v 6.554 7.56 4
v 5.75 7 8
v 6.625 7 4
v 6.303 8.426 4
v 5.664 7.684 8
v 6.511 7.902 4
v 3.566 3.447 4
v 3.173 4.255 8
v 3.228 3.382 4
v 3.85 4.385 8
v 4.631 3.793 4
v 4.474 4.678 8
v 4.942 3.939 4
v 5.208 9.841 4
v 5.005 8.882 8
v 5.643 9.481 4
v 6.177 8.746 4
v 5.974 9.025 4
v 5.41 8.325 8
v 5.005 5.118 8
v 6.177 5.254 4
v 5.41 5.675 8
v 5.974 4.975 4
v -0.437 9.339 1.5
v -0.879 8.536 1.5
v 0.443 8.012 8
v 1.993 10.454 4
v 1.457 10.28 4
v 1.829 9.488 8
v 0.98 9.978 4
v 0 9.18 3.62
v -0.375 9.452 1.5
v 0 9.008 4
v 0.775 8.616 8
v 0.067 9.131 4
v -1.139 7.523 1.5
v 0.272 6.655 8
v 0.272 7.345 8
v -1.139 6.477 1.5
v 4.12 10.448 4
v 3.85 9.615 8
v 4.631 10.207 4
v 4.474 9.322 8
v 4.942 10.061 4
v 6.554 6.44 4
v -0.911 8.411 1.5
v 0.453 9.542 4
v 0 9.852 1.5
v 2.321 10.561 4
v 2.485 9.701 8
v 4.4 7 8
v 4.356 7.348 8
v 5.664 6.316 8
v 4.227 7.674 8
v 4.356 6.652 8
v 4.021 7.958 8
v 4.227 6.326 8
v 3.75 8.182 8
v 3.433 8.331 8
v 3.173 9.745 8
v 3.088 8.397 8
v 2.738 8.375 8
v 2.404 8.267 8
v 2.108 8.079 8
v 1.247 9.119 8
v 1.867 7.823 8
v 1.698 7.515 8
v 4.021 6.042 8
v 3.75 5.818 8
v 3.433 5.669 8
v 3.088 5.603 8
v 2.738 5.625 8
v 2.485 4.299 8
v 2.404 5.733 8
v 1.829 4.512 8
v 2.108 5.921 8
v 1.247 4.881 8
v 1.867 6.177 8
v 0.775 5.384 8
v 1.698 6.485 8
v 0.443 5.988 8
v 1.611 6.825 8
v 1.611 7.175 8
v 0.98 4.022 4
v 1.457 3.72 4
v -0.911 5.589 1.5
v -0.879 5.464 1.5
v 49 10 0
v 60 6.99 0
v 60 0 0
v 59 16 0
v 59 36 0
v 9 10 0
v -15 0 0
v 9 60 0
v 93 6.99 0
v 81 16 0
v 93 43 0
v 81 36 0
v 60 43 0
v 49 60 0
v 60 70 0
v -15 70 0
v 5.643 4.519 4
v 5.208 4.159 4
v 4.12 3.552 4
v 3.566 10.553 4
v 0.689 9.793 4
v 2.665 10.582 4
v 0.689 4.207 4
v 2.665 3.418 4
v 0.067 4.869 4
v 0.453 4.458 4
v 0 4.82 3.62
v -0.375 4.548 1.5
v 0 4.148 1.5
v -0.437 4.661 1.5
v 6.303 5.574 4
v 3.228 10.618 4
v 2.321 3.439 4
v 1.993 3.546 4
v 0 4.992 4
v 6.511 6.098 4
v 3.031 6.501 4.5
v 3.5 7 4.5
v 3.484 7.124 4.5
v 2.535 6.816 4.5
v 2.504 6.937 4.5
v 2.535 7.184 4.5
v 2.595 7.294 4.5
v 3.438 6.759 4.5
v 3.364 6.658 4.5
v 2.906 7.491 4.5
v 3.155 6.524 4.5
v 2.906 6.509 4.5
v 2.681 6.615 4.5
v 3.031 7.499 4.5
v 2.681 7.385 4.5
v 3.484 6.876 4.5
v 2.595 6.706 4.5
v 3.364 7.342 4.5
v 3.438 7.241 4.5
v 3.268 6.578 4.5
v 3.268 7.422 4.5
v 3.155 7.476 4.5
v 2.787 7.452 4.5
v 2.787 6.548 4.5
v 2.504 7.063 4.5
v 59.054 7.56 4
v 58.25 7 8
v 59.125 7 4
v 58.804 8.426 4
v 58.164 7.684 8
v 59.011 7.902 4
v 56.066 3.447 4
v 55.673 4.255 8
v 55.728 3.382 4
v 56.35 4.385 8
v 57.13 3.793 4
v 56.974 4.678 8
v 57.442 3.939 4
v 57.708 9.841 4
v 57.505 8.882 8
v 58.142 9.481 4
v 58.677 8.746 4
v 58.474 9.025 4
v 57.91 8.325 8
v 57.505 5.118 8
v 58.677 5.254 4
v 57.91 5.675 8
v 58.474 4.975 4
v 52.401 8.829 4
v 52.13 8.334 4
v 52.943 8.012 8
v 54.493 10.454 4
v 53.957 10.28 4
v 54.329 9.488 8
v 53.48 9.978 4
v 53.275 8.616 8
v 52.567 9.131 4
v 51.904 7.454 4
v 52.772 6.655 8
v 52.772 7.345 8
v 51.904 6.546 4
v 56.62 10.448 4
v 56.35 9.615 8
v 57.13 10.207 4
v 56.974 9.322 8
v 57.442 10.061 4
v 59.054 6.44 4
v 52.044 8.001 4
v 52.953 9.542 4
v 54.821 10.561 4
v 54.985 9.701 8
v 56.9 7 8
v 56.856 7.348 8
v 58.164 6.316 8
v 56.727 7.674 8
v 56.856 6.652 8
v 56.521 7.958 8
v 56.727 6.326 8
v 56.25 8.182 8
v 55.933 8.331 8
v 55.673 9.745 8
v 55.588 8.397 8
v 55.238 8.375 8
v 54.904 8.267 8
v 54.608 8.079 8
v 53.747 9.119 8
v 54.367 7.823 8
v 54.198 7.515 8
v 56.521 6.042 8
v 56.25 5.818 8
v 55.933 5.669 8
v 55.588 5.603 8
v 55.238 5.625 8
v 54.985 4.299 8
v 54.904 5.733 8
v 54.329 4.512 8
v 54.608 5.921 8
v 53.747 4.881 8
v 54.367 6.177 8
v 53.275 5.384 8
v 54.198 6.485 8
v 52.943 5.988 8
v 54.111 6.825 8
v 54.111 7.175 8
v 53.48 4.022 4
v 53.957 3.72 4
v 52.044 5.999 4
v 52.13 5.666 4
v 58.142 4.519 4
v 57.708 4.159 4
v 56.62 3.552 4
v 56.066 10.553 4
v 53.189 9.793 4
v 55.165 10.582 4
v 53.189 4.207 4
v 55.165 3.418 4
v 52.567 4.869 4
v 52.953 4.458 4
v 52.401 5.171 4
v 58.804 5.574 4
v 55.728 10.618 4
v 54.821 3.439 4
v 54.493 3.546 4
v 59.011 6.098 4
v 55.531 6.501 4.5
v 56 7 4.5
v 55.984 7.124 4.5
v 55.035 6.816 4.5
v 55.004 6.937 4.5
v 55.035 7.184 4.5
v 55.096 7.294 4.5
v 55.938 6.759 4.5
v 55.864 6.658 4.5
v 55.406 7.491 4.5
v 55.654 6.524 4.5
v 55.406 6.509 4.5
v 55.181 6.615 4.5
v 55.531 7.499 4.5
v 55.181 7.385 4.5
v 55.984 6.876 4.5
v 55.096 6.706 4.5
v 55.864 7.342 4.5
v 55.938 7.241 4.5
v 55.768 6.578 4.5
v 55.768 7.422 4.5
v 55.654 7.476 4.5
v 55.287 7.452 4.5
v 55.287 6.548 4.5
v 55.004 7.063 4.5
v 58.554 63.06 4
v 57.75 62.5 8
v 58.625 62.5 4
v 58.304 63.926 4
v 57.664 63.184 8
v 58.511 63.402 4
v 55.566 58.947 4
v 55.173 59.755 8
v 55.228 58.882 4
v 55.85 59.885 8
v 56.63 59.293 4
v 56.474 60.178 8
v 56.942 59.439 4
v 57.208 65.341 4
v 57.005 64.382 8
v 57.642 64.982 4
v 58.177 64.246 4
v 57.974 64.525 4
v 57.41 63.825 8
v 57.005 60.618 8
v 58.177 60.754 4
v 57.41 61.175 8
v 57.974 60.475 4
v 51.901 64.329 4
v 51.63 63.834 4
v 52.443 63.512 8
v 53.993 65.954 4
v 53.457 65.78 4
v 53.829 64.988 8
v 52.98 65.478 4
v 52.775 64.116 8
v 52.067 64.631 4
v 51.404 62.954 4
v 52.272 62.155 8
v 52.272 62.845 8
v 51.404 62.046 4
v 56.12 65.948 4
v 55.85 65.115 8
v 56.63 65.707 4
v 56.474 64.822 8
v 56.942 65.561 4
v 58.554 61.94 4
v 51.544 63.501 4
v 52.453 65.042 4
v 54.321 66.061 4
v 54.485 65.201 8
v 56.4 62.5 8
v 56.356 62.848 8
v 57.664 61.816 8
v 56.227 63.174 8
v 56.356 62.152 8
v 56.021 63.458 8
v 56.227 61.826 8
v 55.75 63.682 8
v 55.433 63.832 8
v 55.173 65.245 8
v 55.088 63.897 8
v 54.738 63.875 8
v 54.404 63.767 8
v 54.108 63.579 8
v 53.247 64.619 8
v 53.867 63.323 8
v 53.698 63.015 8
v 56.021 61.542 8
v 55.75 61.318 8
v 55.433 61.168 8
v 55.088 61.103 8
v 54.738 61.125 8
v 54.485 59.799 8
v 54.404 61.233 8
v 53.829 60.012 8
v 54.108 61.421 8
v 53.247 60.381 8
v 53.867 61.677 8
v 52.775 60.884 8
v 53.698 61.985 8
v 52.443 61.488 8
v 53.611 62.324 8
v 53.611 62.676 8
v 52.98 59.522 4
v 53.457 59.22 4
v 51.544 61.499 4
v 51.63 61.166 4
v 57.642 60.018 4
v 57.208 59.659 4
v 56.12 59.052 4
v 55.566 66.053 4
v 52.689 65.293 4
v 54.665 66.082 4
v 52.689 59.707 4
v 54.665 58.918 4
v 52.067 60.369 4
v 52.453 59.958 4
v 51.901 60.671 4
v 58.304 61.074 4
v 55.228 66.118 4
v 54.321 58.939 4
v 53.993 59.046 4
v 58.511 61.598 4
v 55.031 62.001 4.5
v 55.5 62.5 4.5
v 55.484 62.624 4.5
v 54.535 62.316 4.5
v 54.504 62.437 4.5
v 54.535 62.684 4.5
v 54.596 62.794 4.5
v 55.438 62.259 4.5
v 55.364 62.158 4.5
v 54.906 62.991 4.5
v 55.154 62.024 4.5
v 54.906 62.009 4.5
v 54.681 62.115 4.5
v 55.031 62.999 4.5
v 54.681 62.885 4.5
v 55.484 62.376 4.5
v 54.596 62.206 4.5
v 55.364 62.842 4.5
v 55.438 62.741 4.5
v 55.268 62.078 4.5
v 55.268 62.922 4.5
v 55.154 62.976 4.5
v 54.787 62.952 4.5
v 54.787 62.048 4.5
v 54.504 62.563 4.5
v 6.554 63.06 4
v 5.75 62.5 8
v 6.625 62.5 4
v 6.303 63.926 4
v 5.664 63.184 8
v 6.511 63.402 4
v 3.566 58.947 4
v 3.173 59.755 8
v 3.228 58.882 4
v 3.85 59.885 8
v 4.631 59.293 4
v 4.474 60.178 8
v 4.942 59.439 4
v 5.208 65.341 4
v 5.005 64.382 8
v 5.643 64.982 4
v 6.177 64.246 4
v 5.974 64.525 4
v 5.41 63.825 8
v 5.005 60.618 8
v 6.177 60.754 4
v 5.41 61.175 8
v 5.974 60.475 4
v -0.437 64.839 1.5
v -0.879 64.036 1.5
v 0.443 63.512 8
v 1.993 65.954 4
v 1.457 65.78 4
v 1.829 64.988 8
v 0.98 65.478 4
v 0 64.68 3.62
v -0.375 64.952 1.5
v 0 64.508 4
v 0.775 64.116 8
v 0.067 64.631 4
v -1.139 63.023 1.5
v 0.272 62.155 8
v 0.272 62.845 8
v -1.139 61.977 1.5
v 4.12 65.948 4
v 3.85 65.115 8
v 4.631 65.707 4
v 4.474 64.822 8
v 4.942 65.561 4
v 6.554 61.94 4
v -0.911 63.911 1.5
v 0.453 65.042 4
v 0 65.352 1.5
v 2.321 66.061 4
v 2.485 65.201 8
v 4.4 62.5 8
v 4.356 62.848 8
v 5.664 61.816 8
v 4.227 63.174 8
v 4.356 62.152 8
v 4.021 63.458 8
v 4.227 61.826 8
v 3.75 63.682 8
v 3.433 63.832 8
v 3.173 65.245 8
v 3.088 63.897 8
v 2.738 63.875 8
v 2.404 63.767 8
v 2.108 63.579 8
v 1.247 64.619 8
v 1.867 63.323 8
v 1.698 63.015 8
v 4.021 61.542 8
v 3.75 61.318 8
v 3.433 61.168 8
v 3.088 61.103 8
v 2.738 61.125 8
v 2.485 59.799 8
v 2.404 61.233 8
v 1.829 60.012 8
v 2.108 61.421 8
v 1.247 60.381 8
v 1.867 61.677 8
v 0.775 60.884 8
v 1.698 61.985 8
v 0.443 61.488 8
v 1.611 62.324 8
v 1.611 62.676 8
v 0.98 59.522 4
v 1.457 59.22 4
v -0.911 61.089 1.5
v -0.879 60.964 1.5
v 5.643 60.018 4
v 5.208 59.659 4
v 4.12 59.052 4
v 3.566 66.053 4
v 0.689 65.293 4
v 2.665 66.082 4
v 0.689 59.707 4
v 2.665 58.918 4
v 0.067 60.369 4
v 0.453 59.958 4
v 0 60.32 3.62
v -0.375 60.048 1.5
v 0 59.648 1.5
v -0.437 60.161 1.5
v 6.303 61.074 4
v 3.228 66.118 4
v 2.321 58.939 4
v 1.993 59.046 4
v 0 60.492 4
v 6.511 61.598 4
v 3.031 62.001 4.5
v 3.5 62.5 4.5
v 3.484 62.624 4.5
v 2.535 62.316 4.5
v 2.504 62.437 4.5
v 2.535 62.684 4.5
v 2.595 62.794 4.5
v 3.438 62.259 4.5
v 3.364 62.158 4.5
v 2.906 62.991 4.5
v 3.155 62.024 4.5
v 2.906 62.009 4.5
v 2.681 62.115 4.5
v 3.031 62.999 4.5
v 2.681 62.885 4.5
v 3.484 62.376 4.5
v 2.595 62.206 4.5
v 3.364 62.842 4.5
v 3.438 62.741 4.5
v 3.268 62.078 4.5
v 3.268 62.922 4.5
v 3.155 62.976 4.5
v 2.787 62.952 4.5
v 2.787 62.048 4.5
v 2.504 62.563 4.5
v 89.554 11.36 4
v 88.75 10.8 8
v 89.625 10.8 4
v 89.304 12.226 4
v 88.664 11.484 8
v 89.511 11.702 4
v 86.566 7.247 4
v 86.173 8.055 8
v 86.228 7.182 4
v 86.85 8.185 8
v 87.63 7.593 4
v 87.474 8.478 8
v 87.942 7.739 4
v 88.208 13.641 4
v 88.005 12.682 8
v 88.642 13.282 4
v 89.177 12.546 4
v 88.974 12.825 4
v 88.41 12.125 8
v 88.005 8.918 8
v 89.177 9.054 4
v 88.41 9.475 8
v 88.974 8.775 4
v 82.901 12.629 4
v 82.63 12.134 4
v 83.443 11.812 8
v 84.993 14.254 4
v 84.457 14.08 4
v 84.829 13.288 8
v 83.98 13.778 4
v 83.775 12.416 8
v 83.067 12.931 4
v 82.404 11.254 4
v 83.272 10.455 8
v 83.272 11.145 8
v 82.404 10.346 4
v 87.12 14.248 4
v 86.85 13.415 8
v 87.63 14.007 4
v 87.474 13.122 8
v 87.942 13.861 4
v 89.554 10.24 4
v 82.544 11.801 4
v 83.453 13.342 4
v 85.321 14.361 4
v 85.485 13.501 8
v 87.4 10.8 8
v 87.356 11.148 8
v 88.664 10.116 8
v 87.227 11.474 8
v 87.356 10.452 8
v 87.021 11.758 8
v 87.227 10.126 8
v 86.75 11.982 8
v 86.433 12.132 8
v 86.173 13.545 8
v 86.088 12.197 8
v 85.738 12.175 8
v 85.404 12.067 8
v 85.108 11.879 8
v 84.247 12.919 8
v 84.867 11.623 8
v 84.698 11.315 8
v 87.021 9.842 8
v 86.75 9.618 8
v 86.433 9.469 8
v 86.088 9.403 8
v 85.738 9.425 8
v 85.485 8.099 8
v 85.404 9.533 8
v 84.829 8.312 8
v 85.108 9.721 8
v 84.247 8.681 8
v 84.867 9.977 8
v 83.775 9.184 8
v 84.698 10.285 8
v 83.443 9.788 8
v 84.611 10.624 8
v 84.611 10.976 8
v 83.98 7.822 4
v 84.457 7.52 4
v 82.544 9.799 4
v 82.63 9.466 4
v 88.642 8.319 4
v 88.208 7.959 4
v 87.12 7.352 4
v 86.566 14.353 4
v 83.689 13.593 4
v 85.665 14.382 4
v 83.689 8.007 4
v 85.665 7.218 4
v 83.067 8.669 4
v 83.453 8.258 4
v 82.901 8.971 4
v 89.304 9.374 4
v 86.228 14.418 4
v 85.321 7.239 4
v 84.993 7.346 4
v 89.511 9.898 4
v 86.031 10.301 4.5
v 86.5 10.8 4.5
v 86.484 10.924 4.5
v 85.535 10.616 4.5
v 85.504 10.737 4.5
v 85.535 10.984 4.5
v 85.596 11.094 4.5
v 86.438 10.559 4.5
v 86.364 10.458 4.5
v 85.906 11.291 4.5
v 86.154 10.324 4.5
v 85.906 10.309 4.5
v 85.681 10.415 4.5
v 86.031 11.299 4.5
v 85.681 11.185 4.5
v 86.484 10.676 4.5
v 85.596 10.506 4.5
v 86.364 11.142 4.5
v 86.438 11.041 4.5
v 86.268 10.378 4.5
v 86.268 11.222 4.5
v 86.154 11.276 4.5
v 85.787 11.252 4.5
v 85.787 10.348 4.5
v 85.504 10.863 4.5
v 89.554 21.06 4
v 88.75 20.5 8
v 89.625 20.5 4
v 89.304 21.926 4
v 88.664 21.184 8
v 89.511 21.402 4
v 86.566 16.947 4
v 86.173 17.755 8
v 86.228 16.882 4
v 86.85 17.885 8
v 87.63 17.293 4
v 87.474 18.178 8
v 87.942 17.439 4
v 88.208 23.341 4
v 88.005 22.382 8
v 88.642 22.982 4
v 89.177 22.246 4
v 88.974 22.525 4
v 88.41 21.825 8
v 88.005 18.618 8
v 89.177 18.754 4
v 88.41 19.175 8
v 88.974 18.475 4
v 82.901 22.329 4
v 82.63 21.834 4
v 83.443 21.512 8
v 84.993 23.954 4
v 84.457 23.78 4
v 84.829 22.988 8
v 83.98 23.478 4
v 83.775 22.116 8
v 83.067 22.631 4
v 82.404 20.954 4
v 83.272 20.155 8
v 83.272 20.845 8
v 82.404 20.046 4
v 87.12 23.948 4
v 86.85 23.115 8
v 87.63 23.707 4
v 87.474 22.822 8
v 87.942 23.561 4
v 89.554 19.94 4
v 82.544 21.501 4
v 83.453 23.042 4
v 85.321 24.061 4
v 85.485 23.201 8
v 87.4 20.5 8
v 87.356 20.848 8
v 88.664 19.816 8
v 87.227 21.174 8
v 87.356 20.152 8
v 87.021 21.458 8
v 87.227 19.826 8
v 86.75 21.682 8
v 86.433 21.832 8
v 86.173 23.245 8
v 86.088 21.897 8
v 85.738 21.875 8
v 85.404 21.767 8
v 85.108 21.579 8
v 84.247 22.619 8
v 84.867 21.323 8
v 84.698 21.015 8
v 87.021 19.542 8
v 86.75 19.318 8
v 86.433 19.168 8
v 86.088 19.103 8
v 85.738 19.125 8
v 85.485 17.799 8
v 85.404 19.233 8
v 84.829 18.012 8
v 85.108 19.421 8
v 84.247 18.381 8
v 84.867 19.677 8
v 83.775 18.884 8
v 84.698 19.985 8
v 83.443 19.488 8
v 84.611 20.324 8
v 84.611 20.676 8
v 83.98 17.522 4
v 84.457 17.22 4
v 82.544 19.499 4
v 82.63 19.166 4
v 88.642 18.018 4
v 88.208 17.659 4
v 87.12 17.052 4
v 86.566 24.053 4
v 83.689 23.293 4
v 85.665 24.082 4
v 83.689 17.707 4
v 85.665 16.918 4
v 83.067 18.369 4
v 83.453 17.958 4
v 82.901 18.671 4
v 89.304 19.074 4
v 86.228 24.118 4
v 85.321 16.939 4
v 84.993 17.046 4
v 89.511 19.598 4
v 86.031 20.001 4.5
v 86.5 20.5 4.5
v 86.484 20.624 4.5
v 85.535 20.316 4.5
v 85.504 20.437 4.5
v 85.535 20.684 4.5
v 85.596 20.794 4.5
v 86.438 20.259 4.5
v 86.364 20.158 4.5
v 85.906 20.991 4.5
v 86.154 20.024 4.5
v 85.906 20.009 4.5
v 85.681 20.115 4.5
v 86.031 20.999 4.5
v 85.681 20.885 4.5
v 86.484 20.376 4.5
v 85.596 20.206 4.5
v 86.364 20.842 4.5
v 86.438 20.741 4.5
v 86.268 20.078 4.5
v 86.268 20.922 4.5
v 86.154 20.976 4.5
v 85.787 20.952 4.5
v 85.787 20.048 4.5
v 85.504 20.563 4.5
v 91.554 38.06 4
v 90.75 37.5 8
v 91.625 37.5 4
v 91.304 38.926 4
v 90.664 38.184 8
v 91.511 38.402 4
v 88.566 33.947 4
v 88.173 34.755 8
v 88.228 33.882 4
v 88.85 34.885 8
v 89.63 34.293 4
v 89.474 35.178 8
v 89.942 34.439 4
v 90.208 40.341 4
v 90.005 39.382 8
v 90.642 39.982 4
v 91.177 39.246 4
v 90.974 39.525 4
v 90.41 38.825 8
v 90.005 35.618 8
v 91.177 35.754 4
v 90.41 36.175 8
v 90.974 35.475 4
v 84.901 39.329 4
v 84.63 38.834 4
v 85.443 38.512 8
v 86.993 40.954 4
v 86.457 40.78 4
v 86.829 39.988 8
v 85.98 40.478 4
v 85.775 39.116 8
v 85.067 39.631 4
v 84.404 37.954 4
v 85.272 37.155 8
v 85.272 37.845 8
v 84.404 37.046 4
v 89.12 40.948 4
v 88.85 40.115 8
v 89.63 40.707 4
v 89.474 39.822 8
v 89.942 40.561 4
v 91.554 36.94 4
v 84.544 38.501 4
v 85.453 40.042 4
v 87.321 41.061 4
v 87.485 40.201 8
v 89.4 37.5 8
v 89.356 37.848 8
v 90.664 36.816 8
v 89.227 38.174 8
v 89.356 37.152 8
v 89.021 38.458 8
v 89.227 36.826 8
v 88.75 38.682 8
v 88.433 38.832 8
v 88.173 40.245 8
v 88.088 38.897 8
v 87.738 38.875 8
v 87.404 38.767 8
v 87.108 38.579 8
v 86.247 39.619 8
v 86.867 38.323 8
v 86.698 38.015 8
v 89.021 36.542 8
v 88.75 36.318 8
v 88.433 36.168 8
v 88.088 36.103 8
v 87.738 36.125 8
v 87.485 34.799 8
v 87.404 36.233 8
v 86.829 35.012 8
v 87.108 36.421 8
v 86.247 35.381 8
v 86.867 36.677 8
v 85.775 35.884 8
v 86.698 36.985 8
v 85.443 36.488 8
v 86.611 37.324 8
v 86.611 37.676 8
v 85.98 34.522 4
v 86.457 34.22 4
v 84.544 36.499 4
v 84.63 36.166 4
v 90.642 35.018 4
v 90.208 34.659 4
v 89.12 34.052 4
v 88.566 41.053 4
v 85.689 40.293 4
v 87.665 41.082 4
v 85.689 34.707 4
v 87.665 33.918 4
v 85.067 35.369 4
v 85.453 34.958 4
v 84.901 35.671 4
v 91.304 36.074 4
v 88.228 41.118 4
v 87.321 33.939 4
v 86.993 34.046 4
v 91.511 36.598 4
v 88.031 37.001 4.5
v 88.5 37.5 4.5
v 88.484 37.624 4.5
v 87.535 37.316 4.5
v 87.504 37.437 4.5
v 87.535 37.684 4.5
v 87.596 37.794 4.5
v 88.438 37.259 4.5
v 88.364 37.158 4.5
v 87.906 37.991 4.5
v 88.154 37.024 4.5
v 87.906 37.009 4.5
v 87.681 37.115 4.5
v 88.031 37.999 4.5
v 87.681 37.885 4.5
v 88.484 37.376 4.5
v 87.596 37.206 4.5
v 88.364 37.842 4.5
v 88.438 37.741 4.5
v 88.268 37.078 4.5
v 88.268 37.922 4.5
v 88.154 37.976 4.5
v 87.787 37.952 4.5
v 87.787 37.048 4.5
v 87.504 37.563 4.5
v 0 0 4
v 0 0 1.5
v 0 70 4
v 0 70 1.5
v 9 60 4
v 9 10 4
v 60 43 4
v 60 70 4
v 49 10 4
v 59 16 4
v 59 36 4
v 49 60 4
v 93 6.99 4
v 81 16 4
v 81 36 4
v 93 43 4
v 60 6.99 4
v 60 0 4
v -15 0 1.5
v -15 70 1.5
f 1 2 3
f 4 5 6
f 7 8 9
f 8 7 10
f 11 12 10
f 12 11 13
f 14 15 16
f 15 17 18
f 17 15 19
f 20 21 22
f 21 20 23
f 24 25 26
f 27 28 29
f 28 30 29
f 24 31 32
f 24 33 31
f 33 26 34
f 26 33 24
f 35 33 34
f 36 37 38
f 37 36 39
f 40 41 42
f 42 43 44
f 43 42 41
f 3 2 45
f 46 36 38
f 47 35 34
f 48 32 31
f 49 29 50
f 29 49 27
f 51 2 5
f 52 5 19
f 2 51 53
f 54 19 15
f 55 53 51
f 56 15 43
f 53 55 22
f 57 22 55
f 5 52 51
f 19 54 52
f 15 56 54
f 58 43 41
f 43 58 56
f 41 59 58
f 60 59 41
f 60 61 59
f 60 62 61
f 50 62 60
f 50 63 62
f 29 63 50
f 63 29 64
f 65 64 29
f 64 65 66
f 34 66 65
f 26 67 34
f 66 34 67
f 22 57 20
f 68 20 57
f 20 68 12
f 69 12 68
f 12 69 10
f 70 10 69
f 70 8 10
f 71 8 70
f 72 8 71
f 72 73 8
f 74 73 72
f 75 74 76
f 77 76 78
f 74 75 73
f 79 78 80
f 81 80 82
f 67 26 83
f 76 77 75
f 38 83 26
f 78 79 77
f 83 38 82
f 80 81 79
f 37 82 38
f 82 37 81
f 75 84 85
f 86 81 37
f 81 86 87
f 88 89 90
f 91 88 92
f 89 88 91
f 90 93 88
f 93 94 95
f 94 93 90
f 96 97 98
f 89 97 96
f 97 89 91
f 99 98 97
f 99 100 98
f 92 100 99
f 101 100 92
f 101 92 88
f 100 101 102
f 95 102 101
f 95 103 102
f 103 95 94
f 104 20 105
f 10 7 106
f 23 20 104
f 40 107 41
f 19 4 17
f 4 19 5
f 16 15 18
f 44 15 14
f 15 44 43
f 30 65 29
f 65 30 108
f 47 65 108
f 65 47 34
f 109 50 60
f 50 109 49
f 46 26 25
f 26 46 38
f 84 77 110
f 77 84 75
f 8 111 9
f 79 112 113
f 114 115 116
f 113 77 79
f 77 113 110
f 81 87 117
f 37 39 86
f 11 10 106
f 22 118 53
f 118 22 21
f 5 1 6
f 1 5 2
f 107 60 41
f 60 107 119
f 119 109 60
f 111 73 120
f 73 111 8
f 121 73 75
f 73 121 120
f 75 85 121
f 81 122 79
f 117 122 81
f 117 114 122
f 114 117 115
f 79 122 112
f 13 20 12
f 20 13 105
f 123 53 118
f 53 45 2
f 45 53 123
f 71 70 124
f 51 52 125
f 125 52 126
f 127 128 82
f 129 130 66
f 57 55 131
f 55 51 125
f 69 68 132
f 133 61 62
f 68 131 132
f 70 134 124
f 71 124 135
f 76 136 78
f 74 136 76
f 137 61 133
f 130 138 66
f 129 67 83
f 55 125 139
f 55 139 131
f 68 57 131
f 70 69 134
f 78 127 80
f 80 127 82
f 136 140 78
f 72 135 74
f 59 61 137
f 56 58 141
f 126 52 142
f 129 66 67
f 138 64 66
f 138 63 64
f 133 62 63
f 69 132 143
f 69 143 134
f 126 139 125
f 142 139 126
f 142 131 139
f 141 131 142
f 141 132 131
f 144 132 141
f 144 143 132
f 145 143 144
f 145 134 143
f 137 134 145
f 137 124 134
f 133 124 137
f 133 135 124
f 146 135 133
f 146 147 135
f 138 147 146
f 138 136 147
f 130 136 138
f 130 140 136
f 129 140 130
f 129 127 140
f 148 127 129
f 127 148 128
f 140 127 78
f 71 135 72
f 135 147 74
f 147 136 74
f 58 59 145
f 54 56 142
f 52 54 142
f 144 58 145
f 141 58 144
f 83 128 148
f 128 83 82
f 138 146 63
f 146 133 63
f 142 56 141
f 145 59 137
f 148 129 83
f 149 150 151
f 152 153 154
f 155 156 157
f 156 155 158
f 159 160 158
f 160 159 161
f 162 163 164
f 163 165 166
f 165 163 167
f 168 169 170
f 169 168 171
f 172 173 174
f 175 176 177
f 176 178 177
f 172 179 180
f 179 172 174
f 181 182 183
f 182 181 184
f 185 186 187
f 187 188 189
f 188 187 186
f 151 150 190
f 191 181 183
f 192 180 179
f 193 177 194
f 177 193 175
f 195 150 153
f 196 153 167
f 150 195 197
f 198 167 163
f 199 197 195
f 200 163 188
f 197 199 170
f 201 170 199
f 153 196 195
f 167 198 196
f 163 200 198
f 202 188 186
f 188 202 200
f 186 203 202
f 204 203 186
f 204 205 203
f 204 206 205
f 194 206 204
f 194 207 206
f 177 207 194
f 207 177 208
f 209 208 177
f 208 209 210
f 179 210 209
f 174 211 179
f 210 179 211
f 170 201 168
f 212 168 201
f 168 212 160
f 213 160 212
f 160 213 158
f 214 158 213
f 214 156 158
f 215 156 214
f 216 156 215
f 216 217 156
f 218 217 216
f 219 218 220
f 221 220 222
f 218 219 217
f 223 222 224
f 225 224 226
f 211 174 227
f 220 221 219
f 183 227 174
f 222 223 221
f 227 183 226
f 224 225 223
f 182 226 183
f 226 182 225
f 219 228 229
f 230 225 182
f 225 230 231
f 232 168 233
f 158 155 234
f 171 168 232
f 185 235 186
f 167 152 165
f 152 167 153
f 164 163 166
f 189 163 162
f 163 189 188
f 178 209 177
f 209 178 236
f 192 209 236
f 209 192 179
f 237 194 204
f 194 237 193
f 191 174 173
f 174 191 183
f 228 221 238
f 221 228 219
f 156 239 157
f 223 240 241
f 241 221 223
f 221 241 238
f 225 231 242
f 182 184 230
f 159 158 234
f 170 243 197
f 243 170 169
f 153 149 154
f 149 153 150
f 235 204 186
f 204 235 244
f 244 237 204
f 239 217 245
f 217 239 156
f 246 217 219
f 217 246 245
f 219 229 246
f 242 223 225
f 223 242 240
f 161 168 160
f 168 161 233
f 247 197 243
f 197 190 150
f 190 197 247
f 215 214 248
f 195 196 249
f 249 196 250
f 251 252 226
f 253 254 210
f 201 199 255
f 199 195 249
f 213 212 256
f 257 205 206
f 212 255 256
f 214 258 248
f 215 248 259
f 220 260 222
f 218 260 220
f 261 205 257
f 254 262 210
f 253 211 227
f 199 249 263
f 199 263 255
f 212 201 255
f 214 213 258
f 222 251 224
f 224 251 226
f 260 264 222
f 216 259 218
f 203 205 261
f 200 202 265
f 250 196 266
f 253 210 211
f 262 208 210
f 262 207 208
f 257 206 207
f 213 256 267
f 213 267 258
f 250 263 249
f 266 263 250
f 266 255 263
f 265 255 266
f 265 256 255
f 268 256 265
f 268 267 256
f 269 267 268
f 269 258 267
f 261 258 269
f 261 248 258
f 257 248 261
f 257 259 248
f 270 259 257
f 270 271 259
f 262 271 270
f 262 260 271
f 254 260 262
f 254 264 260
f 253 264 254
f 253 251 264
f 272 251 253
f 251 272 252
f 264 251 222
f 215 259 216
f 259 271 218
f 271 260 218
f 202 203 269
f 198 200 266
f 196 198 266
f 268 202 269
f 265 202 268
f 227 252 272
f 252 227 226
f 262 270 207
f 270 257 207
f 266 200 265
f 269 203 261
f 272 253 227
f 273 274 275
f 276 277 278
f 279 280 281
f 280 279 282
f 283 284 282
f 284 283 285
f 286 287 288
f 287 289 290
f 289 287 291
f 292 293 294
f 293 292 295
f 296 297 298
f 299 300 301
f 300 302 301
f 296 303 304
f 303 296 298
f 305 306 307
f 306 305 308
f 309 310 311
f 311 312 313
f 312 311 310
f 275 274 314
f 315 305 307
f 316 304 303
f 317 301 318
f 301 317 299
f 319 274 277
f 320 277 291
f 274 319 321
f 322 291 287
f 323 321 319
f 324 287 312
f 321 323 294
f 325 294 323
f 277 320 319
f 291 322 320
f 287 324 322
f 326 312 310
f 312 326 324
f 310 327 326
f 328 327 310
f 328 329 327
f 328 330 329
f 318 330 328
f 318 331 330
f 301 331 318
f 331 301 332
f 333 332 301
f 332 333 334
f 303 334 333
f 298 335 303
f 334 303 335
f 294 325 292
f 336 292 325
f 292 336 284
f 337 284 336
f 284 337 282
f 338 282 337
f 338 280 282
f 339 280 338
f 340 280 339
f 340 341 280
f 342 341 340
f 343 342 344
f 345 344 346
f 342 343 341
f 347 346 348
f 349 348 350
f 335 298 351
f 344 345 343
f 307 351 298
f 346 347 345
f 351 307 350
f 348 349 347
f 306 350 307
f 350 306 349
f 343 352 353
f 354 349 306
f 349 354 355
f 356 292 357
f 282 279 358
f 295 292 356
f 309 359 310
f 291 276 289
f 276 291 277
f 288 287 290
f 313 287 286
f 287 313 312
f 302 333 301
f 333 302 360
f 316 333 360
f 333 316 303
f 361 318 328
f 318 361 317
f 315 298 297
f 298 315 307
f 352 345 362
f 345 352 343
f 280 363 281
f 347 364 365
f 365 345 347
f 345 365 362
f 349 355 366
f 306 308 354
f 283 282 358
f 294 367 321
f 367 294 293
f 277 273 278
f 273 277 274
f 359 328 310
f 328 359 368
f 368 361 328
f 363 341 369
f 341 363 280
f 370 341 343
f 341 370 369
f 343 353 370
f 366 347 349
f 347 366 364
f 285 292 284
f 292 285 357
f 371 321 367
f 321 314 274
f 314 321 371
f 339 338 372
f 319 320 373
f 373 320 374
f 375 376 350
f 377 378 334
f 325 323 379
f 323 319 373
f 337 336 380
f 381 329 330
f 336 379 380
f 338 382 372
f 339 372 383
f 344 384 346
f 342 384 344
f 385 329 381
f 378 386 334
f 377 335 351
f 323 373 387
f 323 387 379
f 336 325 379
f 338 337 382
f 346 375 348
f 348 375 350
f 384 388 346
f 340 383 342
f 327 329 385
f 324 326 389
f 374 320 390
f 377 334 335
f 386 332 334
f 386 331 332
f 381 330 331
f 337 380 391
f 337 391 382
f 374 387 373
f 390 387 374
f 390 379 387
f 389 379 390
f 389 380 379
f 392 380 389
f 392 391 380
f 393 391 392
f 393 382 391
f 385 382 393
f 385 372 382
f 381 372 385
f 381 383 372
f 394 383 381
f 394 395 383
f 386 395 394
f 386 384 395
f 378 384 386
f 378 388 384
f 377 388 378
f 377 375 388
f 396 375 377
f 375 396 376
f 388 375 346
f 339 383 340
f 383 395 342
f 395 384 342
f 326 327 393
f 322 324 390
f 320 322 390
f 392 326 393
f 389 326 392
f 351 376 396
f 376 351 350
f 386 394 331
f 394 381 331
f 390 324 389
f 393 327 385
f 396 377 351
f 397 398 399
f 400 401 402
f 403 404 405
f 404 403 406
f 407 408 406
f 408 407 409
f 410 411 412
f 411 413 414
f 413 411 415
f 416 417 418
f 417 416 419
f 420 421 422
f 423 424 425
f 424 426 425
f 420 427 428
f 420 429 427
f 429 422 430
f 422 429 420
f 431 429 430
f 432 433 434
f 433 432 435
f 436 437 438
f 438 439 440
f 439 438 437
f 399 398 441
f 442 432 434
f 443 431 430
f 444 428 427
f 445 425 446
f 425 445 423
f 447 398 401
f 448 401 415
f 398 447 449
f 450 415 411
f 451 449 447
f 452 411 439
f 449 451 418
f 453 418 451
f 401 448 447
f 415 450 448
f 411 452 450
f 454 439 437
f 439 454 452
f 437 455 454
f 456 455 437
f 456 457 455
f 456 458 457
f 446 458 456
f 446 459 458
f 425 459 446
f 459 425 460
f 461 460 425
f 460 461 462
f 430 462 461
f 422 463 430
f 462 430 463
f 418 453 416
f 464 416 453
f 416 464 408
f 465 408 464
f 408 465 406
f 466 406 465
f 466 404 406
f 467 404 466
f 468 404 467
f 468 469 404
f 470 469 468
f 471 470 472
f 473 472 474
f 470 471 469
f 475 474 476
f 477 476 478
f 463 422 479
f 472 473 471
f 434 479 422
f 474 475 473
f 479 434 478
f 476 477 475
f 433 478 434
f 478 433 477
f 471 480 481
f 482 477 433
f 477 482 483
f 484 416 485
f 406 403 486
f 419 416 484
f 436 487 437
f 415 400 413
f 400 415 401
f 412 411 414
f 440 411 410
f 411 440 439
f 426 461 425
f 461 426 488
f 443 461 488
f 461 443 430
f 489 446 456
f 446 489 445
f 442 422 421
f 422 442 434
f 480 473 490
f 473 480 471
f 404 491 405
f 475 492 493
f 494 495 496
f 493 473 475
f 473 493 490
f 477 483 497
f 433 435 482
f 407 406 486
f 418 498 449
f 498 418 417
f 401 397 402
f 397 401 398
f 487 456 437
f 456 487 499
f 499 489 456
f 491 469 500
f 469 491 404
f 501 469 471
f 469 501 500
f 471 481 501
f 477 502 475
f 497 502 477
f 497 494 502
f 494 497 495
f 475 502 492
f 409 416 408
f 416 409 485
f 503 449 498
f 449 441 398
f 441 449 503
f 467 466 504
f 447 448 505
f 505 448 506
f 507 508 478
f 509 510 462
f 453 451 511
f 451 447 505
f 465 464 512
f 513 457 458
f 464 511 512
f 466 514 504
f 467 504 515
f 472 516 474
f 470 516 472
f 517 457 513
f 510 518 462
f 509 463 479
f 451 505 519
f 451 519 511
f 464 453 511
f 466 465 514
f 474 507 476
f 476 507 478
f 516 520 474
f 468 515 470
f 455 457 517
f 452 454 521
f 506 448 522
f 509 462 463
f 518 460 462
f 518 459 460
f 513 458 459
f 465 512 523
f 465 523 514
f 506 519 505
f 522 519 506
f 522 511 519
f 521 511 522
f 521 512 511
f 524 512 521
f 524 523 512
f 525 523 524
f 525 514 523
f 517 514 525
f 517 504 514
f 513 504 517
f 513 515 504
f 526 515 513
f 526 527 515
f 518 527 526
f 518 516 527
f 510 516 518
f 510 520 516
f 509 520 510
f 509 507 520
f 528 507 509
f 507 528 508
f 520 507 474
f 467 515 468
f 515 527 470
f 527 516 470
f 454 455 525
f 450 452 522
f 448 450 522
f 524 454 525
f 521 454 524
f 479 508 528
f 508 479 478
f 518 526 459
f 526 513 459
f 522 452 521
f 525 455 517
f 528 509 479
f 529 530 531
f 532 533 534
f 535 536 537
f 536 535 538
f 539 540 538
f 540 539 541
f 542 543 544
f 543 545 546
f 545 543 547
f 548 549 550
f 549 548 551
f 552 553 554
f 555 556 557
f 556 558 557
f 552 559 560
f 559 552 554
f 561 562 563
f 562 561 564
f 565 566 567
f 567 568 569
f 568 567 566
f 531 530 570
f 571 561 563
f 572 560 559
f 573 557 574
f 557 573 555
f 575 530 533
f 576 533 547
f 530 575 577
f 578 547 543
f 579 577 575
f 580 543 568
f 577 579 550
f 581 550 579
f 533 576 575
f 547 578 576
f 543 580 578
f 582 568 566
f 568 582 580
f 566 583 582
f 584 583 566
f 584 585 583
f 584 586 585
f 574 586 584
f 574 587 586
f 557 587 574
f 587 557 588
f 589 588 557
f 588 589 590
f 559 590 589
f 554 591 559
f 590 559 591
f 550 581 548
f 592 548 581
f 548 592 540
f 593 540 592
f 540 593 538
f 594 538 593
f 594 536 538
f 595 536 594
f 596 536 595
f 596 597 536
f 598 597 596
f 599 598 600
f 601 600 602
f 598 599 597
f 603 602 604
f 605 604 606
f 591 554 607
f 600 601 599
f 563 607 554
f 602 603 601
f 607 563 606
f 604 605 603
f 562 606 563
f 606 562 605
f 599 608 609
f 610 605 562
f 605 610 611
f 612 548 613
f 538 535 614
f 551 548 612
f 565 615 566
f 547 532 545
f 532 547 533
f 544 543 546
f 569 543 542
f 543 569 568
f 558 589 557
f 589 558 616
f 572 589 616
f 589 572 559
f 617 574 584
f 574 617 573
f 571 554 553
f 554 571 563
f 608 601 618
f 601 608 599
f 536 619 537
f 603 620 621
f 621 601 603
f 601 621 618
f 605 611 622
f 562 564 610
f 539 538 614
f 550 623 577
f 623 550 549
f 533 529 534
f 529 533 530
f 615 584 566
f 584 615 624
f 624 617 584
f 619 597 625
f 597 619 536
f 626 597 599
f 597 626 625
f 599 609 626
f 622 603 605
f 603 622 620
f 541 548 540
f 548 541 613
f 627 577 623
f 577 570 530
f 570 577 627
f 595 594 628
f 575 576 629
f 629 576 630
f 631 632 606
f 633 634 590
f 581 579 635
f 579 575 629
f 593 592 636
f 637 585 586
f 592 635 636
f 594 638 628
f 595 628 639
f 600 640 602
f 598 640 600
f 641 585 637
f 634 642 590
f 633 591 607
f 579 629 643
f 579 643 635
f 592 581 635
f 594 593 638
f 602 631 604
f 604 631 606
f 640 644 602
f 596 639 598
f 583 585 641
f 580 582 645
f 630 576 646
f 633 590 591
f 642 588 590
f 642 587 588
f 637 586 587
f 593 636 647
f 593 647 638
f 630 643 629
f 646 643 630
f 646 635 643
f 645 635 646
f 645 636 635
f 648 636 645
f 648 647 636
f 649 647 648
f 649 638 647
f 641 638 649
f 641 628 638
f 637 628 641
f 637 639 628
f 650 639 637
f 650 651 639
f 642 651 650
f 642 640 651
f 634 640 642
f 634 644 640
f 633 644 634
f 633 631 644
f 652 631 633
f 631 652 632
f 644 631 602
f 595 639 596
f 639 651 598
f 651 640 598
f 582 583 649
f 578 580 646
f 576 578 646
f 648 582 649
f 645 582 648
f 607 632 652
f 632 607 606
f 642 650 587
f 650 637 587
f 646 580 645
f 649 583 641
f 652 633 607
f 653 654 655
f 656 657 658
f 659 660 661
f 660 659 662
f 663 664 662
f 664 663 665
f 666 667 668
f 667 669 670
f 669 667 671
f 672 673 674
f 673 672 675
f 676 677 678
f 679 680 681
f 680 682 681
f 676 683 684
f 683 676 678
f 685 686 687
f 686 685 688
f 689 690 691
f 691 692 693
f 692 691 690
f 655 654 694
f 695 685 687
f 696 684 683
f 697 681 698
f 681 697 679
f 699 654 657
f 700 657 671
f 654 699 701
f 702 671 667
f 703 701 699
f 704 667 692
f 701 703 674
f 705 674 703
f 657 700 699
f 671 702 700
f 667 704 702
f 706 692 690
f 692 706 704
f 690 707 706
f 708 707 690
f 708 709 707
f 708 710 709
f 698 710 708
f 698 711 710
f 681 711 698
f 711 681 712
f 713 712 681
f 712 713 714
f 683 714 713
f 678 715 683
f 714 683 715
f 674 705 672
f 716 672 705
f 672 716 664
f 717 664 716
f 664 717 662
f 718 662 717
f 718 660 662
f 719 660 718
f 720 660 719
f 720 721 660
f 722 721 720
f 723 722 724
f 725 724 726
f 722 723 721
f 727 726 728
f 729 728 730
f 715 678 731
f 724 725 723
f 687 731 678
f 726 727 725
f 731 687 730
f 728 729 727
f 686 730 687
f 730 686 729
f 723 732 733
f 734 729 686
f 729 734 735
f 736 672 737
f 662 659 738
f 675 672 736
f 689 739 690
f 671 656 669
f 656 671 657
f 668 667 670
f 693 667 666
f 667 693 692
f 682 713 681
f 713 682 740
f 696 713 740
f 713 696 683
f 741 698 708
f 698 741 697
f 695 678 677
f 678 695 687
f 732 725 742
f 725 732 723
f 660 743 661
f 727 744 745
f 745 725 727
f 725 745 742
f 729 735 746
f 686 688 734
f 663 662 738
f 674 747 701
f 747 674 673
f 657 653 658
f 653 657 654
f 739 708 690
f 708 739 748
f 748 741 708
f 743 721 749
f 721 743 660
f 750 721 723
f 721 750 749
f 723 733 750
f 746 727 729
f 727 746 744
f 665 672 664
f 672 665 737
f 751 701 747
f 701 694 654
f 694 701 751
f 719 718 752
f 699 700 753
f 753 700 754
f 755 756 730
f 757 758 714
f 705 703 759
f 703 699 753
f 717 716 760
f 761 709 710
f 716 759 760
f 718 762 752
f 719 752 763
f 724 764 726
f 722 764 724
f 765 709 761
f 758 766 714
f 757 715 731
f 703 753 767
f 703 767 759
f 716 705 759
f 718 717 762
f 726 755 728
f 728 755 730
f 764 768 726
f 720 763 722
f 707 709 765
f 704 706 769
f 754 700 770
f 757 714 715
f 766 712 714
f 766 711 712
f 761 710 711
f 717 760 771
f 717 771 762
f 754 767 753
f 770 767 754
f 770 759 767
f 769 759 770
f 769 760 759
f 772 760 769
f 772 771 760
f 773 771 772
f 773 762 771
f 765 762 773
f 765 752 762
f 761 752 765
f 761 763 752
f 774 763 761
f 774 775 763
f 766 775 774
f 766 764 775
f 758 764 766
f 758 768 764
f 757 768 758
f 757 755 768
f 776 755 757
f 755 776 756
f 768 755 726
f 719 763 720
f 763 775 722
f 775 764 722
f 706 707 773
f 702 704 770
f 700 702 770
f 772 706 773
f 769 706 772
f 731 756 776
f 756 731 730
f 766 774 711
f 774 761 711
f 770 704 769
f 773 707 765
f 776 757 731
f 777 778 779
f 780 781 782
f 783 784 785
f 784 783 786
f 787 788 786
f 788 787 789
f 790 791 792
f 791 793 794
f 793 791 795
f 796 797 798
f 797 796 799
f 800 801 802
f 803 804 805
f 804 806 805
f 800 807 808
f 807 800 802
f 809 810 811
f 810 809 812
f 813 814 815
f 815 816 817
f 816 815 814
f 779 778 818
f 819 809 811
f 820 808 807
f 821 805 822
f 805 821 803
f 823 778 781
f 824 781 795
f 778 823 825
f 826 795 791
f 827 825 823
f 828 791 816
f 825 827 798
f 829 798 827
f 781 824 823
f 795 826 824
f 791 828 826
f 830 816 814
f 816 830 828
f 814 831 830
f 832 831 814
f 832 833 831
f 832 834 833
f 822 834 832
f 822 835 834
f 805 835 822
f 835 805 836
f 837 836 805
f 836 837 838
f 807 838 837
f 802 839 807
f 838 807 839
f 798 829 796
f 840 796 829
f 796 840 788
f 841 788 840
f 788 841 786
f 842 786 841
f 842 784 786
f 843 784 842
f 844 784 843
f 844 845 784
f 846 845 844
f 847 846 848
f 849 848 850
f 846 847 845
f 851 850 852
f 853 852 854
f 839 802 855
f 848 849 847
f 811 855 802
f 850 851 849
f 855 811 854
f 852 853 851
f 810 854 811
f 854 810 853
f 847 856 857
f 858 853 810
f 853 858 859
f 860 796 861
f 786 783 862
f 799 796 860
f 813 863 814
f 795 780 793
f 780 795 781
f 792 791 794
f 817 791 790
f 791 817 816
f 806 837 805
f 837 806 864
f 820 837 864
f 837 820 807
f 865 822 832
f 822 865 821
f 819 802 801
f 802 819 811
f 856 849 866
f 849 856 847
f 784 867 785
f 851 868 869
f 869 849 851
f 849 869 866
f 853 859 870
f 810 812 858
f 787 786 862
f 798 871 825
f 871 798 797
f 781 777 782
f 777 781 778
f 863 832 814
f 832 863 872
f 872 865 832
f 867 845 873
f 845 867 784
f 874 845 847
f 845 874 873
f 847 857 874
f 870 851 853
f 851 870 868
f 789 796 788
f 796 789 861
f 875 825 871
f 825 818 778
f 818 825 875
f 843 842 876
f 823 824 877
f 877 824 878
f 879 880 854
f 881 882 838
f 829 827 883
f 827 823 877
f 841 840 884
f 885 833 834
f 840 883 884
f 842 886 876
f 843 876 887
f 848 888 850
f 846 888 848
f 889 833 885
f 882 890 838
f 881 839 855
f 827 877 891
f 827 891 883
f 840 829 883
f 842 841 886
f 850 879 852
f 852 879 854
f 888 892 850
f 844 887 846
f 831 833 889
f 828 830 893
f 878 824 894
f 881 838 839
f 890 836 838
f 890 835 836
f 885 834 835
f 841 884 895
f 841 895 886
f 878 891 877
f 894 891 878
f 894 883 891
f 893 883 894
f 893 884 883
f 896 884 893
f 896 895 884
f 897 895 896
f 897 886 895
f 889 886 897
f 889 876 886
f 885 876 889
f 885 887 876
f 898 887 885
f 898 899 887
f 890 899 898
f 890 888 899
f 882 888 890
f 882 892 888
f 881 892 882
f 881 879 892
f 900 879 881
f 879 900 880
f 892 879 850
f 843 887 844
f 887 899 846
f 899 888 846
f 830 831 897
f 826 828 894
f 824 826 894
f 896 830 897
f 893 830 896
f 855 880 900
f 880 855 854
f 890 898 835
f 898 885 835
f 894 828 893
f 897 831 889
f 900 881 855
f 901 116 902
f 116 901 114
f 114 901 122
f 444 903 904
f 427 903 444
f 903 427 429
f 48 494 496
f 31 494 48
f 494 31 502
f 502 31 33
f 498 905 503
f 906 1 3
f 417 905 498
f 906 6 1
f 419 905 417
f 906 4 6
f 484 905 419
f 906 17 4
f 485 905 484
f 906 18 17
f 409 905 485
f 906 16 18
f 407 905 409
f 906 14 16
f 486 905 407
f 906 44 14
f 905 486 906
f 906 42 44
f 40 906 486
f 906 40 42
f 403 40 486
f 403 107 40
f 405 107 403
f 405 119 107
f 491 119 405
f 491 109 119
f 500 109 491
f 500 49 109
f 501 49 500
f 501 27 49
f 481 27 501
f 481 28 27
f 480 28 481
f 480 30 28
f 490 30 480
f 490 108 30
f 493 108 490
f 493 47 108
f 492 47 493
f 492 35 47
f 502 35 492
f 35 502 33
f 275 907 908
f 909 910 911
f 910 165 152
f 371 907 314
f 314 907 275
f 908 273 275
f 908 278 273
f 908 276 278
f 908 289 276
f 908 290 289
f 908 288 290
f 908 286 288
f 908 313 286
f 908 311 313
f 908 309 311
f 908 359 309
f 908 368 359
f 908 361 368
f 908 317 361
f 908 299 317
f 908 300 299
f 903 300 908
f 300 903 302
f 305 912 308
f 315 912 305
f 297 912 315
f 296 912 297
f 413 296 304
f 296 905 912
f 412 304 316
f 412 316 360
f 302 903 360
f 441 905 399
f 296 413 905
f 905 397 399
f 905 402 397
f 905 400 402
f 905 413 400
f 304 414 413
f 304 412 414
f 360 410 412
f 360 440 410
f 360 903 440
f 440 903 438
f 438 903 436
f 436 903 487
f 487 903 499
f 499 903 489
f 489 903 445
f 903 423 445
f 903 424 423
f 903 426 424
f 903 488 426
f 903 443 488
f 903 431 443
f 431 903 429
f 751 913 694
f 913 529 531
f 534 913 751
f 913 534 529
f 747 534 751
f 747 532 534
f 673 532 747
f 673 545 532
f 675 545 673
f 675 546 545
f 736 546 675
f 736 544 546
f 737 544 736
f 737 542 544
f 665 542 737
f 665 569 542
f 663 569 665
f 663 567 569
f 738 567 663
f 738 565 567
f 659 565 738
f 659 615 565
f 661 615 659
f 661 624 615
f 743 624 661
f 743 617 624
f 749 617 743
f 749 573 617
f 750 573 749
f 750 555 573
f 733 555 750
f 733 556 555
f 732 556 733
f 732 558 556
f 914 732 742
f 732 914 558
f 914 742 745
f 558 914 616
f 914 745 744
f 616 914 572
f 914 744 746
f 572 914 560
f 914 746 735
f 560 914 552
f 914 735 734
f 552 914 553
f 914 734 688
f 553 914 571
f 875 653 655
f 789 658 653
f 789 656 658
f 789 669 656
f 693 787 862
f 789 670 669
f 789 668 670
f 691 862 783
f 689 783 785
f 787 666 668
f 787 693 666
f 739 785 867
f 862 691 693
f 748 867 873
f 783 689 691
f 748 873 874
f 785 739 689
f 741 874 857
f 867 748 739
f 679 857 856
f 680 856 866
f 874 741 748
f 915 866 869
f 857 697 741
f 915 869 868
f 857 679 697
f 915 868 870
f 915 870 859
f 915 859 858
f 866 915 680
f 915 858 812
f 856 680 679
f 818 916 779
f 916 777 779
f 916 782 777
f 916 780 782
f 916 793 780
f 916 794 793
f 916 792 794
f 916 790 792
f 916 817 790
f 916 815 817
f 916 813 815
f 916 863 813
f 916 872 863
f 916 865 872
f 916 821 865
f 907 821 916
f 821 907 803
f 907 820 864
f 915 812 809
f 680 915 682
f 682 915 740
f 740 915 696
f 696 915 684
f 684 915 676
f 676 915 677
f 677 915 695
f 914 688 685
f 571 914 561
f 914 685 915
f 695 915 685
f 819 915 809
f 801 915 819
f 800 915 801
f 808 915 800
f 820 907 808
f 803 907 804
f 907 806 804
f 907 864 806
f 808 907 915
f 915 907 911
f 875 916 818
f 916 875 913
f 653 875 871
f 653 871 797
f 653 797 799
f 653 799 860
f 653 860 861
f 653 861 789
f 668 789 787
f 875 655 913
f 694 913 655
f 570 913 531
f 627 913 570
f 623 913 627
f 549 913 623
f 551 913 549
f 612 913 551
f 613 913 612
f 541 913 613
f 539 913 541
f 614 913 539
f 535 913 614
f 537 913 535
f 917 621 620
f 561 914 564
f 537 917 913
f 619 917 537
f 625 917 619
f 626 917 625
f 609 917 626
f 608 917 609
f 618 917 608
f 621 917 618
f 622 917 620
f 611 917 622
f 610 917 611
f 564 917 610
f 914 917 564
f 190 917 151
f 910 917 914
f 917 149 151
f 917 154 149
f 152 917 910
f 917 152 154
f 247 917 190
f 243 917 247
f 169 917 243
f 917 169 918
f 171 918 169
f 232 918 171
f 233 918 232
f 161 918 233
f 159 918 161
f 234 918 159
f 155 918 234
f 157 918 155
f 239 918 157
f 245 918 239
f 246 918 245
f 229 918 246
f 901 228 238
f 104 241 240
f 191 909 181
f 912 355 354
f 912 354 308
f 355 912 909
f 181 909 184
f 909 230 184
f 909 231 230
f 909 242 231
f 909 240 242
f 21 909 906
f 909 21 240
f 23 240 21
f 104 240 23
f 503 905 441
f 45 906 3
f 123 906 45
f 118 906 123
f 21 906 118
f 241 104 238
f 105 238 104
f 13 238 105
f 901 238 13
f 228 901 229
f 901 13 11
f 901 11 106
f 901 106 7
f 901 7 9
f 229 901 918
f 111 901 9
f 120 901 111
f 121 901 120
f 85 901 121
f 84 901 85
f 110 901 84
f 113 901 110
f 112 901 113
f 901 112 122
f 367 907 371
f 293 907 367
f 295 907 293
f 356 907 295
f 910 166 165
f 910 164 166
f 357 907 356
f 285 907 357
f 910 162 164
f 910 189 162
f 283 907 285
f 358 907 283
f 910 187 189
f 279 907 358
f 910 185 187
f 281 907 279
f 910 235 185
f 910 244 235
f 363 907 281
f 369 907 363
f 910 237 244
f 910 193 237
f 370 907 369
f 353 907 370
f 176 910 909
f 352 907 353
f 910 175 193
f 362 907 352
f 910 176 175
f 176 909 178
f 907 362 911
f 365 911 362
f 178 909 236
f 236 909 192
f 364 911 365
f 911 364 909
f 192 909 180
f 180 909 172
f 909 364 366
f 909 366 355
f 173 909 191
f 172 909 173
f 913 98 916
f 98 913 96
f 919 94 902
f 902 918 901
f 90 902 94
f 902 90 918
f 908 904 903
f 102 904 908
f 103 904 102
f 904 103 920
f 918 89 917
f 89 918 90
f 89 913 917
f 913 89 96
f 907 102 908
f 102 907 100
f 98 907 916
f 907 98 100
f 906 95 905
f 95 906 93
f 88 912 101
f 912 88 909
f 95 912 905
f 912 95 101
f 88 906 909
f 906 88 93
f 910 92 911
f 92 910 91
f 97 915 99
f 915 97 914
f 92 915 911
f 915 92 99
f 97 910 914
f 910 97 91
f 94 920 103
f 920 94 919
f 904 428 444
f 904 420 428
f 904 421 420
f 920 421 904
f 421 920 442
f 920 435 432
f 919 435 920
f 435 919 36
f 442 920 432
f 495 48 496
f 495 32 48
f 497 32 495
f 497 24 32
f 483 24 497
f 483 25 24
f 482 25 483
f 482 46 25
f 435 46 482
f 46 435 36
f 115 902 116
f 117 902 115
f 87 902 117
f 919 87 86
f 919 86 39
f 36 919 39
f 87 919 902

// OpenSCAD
/* File: platform.scad
 * Platform to hold sensor perfboard and RJ jack sub board
 * Author: deh
 * Latest edit: 20190726
 */
 
 $fn = 25;
 
 hvthick = 4;
 
 hvbase = [93,70,hvthick];

holehv1 = [   3,    7,  0];
holehv2 = [55.5,    7,  0];
holehv3 = [55.0, 62.5,  0];
holehv4 = [   3, 62.5,  0];
holehv5 = [   3, 62.5,  0];
holehv6 = [86.0, 10.8,  0];
holehv7 = [86.0, 20.5,  0];
holehv8 = [88.0, 37.5,  0];



module hvpost(a)
 {
     translate(a)
     {
         difference()
        {
            cylinder(d1=9.0, d2=5.5,h=(4+hvthick),center=false);
            
            translate([0,0,(4+hvthick)-3.5])
            cylinder(d1=1.0, d2=2.8,h=3.5,center=false);
        }
     }
     
 }
 
 module hvbase()
 {
     difference()
     {
		  union()
   	  {
            hvpost(holehv1);
            hvpost(holehv2);
            hvpost(holehv3);
            hvpost(holehv4);
            hvpost(holehv5);
            hvpost(holehv6);
            hvpost(holehv7);
            hvpost(holehv8);

            cube(hvbase,false);
        }   
        union()
        {
            translate([60,-.01,0])
                cube([35.5,7,hvthick+.01],false);

            translate([60,43,0])
                cube([34,50,hvthick+.01],false);
            
            translate([29,35,-0.1])
                cube([40,50,50],true);
            
            translate([70,26,0])
                cube([22,20,50],true);
            
        }
     }
 }
 
hvbase();
 
 // Tab to hold to platform1
 translate([-15,0,0])
    cube([15,70,1.5],false);
